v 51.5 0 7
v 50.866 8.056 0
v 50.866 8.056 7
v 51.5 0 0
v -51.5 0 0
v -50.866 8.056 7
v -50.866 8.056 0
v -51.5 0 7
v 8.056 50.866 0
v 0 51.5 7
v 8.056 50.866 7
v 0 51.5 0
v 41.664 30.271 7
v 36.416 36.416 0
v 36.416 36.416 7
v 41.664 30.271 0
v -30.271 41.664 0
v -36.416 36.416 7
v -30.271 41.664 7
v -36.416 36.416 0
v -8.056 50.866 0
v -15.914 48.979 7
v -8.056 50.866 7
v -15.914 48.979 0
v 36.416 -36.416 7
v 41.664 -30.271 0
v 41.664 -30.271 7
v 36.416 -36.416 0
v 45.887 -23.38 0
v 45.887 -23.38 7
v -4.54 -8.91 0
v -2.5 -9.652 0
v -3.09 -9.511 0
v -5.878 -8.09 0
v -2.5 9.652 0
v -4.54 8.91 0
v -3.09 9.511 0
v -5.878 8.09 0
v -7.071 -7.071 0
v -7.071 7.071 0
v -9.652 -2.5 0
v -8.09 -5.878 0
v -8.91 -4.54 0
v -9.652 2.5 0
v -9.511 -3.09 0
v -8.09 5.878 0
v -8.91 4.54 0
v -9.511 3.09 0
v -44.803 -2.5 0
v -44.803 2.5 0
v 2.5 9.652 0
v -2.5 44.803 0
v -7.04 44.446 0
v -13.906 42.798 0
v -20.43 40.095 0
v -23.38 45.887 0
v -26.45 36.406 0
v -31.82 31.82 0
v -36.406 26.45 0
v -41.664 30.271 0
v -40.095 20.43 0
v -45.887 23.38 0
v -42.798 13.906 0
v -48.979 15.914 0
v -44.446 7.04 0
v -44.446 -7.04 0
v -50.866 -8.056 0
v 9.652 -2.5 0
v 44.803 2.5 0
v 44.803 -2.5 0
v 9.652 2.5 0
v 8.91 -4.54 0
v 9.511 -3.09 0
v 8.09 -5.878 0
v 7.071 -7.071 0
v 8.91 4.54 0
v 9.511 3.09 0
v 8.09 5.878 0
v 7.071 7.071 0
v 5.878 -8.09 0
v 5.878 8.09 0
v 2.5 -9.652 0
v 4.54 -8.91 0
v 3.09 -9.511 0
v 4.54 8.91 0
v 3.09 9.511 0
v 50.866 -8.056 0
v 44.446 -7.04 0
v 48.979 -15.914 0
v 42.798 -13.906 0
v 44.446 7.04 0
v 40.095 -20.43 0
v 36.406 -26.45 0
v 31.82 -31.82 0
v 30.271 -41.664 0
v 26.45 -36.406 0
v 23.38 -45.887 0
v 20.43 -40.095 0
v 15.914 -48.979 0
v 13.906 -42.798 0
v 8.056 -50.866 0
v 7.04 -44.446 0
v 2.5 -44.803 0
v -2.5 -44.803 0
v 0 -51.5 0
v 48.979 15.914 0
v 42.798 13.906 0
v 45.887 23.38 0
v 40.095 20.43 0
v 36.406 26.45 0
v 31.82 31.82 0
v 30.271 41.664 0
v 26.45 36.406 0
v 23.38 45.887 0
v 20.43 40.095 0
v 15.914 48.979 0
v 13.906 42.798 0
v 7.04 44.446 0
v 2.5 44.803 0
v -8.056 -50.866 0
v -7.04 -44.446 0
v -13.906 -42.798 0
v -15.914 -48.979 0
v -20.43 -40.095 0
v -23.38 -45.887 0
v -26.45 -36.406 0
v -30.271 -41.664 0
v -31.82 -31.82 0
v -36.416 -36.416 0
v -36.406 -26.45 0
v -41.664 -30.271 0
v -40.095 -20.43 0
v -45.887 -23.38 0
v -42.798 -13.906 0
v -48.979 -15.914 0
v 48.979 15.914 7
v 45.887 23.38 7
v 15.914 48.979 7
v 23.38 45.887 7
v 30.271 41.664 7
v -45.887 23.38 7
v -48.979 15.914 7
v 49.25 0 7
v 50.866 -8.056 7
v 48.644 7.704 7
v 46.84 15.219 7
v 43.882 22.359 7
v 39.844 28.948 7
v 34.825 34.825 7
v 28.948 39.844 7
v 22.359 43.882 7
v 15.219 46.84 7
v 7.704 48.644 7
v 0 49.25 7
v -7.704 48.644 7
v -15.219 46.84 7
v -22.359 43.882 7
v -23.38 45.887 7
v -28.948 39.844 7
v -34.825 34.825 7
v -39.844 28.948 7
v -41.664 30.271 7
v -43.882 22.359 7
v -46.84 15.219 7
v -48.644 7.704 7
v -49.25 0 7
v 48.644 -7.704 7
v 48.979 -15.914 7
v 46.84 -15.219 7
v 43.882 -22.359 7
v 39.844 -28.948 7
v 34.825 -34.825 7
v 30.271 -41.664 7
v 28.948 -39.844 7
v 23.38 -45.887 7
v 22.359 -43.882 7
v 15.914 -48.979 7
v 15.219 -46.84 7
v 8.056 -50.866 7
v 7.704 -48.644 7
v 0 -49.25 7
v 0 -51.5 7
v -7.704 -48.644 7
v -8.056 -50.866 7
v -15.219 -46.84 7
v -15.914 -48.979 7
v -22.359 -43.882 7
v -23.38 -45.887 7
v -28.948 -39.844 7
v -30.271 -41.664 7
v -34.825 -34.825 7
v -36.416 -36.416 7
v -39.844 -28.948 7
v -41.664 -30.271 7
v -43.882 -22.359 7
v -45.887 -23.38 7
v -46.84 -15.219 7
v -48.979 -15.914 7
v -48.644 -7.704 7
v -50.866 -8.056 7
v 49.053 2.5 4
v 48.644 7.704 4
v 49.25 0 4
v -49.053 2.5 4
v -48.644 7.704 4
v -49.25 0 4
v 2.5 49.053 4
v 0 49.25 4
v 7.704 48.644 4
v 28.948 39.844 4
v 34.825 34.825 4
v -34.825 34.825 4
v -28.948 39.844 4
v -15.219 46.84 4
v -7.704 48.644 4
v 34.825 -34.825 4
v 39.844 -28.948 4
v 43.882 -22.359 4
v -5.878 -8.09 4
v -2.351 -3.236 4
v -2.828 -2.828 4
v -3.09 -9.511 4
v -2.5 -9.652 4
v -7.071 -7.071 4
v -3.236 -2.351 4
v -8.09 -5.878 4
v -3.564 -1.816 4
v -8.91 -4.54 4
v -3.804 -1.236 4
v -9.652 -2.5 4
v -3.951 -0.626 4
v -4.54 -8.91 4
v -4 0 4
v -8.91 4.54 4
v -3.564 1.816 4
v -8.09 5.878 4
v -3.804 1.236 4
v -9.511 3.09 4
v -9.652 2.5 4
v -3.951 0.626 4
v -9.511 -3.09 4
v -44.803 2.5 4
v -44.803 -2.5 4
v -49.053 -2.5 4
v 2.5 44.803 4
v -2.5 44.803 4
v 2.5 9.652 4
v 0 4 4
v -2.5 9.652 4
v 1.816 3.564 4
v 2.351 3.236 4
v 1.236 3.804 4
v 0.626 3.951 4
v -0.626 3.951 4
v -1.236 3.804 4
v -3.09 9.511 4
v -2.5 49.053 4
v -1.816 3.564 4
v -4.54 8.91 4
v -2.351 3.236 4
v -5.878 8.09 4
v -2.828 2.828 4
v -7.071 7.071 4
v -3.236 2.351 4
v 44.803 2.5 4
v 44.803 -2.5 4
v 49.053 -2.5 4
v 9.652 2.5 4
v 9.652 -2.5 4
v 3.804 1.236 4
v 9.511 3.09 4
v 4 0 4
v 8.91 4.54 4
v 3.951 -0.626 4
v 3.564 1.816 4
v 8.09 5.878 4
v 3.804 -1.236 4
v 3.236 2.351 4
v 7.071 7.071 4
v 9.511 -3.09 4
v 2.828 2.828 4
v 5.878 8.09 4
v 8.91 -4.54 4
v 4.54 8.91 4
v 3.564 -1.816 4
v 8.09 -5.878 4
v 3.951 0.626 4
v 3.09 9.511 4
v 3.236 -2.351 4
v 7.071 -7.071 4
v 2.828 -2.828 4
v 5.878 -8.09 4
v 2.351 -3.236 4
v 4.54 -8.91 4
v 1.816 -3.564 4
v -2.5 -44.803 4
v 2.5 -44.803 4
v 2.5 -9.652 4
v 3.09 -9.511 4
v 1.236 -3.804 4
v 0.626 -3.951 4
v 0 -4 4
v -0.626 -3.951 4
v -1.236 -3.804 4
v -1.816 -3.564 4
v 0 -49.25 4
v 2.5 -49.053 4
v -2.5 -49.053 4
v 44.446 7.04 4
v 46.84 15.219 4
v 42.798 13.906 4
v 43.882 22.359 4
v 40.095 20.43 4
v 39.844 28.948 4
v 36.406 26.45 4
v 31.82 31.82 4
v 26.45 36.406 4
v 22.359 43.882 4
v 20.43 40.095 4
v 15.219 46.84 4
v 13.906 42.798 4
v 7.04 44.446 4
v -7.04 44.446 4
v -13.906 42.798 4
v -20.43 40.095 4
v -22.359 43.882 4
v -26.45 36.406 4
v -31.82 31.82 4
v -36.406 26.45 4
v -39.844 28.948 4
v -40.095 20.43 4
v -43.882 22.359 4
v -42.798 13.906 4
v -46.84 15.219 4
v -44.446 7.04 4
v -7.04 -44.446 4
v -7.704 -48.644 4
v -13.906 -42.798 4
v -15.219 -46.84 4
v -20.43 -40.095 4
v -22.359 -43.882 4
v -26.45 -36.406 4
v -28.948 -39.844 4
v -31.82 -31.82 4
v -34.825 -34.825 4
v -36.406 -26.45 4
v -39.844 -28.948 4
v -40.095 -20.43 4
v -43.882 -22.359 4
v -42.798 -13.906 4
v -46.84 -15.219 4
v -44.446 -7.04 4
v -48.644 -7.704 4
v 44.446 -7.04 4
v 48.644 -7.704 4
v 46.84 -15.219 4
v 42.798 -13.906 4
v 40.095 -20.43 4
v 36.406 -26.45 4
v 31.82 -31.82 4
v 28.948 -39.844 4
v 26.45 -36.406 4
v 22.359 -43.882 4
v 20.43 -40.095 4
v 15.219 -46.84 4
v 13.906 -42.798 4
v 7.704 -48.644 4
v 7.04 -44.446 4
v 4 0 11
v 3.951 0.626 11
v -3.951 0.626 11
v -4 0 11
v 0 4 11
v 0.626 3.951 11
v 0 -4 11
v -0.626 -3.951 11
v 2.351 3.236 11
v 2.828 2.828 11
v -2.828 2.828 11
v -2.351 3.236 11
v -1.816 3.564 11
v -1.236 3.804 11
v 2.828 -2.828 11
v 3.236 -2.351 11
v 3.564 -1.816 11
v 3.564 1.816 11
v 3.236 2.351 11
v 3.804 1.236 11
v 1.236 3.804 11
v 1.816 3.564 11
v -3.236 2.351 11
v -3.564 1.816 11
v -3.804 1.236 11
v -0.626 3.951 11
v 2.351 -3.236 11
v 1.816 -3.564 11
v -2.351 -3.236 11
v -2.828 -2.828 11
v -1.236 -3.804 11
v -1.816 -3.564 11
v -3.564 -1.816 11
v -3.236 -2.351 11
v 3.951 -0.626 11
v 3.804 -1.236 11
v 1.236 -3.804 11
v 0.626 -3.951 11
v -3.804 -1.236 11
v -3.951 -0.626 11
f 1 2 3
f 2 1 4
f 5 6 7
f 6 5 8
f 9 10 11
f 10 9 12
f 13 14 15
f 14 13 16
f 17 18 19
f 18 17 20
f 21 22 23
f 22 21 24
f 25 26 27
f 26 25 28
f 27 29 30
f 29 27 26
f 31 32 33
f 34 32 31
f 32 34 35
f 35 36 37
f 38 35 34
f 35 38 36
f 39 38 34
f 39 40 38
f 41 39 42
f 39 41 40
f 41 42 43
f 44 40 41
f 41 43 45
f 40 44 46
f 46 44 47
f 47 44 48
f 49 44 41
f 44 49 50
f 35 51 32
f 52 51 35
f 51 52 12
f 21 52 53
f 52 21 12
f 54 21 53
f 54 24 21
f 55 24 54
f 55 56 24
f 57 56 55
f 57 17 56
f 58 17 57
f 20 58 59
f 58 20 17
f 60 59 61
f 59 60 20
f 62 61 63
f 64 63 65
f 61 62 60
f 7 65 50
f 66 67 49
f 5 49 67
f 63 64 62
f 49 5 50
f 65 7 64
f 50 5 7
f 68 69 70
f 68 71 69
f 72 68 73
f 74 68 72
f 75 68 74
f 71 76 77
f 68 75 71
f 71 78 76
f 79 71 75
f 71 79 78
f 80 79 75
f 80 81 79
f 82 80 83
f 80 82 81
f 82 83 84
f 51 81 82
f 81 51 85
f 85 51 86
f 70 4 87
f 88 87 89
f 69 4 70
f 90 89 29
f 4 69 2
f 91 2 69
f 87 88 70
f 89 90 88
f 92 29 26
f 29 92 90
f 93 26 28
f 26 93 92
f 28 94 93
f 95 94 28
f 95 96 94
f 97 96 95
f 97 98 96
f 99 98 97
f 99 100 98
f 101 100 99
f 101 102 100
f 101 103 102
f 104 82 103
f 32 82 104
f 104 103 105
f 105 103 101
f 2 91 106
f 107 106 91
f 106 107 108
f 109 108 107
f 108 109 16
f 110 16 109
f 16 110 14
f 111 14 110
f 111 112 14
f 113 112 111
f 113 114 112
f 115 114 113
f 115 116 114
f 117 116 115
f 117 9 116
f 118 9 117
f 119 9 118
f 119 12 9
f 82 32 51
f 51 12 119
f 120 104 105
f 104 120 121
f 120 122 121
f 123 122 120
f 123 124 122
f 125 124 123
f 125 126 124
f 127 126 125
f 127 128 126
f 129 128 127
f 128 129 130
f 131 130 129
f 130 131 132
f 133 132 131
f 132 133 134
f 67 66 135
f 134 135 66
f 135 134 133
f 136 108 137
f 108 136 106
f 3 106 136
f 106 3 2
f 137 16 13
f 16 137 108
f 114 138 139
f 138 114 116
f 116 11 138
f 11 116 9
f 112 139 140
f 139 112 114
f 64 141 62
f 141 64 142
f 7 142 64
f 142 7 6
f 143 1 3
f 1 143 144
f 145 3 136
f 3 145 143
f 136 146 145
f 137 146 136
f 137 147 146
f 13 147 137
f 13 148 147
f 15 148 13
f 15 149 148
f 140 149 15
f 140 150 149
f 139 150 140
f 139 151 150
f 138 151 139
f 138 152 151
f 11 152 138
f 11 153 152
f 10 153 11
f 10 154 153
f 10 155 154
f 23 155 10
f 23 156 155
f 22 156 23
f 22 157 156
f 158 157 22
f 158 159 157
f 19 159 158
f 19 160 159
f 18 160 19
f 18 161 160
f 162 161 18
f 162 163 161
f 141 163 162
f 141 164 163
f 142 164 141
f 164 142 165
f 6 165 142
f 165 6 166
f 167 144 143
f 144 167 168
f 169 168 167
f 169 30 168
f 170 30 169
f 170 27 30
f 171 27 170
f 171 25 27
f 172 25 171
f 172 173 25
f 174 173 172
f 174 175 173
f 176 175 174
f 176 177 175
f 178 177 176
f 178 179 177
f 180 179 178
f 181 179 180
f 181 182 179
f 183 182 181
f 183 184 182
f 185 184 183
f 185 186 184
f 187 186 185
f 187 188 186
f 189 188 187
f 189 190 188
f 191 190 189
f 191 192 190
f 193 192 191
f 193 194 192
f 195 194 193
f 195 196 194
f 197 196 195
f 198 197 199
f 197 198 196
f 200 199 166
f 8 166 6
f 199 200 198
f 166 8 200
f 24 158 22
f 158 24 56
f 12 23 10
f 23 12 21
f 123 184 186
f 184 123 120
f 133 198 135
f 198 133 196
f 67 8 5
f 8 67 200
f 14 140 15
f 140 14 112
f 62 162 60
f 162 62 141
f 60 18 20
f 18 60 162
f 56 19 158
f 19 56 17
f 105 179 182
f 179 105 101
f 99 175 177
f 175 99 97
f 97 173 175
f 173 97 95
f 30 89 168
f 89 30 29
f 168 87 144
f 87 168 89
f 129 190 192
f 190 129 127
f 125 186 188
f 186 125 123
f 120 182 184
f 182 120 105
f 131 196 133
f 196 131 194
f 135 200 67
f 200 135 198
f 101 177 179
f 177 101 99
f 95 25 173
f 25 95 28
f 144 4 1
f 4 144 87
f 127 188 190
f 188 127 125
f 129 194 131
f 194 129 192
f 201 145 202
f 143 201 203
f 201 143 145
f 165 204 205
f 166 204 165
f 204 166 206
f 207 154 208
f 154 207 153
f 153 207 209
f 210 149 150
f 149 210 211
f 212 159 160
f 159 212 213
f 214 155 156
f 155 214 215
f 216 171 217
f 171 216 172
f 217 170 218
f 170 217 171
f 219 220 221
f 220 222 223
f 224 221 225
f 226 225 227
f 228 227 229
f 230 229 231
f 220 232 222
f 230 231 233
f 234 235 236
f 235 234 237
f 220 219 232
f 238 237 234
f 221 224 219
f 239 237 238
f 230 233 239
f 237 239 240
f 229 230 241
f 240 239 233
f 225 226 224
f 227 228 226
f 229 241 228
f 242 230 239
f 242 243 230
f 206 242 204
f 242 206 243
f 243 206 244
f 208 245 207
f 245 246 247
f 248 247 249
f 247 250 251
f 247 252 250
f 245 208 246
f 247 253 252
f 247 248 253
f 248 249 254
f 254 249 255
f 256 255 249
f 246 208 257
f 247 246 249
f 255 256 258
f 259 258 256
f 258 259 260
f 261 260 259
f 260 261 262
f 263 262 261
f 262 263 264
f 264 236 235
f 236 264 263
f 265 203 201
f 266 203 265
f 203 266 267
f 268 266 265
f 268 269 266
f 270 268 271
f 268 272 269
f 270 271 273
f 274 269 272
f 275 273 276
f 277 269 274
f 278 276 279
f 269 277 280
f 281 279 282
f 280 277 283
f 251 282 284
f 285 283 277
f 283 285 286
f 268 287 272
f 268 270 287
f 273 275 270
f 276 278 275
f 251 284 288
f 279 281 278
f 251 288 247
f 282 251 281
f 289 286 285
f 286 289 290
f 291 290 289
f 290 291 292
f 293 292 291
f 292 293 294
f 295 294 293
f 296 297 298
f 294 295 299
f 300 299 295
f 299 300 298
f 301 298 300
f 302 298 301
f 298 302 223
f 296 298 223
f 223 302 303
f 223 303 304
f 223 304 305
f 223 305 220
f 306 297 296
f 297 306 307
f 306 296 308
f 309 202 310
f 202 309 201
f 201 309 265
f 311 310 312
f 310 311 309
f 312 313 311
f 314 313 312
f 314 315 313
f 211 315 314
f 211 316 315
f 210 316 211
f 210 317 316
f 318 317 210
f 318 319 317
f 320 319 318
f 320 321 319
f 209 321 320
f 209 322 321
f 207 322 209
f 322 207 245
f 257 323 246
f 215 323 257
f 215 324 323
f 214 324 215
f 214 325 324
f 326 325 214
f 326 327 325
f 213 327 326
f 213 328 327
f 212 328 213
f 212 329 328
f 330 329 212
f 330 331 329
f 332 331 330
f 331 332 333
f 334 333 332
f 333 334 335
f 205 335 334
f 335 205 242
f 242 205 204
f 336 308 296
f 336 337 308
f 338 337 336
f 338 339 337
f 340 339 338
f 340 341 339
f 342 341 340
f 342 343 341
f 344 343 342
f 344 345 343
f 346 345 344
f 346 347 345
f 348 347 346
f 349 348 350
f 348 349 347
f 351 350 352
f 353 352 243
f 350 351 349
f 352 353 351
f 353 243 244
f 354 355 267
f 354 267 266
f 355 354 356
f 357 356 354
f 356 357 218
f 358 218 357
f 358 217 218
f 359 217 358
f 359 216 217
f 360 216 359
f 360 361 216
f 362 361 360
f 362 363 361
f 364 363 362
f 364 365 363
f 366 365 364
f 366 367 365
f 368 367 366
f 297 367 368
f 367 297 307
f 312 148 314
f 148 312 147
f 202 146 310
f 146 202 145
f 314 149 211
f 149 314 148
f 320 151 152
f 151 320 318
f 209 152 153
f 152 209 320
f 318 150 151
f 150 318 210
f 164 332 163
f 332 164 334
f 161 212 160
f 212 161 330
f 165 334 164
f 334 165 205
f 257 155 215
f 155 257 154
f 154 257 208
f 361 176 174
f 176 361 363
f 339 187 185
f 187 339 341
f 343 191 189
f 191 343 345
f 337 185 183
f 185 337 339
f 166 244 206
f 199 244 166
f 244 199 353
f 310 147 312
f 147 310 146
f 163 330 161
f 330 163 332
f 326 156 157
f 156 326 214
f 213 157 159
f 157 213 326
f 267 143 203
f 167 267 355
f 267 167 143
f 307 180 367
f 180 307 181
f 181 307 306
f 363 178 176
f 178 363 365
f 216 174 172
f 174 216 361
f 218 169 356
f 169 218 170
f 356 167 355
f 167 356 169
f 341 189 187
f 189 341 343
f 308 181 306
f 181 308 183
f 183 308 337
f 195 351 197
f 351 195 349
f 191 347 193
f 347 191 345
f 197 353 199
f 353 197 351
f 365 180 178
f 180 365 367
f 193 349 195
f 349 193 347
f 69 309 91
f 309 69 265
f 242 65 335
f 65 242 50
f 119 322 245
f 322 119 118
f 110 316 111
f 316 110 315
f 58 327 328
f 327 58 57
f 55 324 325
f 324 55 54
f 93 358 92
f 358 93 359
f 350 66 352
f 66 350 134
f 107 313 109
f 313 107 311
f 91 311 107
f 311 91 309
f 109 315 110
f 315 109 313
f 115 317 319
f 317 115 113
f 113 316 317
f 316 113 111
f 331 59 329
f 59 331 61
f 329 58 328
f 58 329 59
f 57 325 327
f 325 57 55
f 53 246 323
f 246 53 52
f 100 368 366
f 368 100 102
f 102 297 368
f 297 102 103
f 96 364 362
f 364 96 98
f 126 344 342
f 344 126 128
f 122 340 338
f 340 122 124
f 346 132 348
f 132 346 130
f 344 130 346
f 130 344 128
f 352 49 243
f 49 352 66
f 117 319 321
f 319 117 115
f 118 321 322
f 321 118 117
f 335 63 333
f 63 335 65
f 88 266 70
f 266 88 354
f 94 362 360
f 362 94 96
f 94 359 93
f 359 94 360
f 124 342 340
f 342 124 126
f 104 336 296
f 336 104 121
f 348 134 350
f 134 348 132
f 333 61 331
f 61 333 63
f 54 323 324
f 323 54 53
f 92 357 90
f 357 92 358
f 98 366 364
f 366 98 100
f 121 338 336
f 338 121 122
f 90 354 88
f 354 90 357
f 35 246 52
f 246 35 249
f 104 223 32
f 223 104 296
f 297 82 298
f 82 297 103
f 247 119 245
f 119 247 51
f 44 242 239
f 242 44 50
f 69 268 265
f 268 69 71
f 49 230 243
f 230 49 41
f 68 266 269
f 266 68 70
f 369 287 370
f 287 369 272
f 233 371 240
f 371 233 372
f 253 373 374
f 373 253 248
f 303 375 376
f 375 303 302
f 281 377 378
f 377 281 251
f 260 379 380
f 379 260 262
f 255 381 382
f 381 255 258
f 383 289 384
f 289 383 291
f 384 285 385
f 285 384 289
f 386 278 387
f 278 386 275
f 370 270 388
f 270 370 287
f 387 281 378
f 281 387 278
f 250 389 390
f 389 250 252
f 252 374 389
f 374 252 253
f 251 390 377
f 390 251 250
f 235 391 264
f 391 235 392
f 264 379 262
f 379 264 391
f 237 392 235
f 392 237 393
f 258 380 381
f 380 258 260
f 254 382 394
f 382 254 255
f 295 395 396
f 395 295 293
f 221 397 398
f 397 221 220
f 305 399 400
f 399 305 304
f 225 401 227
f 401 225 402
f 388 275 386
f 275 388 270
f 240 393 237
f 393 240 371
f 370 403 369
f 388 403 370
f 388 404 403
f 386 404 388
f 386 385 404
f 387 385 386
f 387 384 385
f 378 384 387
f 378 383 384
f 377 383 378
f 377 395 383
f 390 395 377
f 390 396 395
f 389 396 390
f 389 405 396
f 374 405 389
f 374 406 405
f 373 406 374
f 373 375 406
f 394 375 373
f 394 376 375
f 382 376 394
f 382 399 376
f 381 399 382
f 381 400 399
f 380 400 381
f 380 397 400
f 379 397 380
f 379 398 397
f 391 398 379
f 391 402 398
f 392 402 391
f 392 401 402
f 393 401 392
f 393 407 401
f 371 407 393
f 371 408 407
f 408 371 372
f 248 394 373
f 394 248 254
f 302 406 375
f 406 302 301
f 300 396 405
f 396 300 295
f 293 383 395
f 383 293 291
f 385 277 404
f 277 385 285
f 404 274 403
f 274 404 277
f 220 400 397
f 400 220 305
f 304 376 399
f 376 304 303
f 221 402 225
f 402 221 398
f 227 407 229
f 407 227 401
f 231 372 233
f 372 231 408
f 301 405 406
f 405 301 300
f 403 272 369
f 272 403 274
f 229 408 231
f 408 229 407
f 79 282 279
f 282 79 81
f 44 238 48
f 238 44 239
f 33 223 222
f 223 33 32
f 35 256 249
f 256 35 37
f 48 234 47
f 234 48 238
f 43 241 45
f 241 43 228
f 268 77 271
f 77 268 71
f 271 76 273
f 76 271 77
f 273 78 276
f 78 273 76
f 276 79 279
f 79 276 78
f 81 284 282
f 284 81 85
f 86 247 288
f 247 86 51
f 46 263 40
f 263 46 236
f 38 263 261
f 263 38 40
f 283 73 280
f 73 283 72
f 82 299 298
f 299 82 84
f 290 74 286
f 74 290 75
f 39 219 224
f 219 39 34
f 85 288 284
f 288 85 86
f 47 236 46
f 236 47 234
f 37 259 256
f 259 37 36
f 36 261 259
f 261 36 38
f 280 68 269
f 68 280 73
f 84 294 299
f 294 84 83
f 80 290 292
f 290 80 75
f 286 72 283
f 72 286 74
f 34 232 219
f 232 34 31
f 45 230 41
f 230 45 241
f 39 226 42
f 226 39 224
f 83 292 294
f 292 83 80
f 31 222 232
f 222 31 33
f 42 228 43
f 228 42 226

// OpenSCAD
$fn = 40;

difference() {
    cylinder(h=7, d=103);
    translate([0,0,4]) cylinder(h=5, d=98.5);
    translate([0,0,-1]) cylinder(h=8, d=90);
}
translate([-2.5,-50,0]) cube([5,100,4]);
translate([-50,-2.5,0]) cube([100,5,4]);
cylinder(h=11, d=8);
cylinder(h=4, d=20);
